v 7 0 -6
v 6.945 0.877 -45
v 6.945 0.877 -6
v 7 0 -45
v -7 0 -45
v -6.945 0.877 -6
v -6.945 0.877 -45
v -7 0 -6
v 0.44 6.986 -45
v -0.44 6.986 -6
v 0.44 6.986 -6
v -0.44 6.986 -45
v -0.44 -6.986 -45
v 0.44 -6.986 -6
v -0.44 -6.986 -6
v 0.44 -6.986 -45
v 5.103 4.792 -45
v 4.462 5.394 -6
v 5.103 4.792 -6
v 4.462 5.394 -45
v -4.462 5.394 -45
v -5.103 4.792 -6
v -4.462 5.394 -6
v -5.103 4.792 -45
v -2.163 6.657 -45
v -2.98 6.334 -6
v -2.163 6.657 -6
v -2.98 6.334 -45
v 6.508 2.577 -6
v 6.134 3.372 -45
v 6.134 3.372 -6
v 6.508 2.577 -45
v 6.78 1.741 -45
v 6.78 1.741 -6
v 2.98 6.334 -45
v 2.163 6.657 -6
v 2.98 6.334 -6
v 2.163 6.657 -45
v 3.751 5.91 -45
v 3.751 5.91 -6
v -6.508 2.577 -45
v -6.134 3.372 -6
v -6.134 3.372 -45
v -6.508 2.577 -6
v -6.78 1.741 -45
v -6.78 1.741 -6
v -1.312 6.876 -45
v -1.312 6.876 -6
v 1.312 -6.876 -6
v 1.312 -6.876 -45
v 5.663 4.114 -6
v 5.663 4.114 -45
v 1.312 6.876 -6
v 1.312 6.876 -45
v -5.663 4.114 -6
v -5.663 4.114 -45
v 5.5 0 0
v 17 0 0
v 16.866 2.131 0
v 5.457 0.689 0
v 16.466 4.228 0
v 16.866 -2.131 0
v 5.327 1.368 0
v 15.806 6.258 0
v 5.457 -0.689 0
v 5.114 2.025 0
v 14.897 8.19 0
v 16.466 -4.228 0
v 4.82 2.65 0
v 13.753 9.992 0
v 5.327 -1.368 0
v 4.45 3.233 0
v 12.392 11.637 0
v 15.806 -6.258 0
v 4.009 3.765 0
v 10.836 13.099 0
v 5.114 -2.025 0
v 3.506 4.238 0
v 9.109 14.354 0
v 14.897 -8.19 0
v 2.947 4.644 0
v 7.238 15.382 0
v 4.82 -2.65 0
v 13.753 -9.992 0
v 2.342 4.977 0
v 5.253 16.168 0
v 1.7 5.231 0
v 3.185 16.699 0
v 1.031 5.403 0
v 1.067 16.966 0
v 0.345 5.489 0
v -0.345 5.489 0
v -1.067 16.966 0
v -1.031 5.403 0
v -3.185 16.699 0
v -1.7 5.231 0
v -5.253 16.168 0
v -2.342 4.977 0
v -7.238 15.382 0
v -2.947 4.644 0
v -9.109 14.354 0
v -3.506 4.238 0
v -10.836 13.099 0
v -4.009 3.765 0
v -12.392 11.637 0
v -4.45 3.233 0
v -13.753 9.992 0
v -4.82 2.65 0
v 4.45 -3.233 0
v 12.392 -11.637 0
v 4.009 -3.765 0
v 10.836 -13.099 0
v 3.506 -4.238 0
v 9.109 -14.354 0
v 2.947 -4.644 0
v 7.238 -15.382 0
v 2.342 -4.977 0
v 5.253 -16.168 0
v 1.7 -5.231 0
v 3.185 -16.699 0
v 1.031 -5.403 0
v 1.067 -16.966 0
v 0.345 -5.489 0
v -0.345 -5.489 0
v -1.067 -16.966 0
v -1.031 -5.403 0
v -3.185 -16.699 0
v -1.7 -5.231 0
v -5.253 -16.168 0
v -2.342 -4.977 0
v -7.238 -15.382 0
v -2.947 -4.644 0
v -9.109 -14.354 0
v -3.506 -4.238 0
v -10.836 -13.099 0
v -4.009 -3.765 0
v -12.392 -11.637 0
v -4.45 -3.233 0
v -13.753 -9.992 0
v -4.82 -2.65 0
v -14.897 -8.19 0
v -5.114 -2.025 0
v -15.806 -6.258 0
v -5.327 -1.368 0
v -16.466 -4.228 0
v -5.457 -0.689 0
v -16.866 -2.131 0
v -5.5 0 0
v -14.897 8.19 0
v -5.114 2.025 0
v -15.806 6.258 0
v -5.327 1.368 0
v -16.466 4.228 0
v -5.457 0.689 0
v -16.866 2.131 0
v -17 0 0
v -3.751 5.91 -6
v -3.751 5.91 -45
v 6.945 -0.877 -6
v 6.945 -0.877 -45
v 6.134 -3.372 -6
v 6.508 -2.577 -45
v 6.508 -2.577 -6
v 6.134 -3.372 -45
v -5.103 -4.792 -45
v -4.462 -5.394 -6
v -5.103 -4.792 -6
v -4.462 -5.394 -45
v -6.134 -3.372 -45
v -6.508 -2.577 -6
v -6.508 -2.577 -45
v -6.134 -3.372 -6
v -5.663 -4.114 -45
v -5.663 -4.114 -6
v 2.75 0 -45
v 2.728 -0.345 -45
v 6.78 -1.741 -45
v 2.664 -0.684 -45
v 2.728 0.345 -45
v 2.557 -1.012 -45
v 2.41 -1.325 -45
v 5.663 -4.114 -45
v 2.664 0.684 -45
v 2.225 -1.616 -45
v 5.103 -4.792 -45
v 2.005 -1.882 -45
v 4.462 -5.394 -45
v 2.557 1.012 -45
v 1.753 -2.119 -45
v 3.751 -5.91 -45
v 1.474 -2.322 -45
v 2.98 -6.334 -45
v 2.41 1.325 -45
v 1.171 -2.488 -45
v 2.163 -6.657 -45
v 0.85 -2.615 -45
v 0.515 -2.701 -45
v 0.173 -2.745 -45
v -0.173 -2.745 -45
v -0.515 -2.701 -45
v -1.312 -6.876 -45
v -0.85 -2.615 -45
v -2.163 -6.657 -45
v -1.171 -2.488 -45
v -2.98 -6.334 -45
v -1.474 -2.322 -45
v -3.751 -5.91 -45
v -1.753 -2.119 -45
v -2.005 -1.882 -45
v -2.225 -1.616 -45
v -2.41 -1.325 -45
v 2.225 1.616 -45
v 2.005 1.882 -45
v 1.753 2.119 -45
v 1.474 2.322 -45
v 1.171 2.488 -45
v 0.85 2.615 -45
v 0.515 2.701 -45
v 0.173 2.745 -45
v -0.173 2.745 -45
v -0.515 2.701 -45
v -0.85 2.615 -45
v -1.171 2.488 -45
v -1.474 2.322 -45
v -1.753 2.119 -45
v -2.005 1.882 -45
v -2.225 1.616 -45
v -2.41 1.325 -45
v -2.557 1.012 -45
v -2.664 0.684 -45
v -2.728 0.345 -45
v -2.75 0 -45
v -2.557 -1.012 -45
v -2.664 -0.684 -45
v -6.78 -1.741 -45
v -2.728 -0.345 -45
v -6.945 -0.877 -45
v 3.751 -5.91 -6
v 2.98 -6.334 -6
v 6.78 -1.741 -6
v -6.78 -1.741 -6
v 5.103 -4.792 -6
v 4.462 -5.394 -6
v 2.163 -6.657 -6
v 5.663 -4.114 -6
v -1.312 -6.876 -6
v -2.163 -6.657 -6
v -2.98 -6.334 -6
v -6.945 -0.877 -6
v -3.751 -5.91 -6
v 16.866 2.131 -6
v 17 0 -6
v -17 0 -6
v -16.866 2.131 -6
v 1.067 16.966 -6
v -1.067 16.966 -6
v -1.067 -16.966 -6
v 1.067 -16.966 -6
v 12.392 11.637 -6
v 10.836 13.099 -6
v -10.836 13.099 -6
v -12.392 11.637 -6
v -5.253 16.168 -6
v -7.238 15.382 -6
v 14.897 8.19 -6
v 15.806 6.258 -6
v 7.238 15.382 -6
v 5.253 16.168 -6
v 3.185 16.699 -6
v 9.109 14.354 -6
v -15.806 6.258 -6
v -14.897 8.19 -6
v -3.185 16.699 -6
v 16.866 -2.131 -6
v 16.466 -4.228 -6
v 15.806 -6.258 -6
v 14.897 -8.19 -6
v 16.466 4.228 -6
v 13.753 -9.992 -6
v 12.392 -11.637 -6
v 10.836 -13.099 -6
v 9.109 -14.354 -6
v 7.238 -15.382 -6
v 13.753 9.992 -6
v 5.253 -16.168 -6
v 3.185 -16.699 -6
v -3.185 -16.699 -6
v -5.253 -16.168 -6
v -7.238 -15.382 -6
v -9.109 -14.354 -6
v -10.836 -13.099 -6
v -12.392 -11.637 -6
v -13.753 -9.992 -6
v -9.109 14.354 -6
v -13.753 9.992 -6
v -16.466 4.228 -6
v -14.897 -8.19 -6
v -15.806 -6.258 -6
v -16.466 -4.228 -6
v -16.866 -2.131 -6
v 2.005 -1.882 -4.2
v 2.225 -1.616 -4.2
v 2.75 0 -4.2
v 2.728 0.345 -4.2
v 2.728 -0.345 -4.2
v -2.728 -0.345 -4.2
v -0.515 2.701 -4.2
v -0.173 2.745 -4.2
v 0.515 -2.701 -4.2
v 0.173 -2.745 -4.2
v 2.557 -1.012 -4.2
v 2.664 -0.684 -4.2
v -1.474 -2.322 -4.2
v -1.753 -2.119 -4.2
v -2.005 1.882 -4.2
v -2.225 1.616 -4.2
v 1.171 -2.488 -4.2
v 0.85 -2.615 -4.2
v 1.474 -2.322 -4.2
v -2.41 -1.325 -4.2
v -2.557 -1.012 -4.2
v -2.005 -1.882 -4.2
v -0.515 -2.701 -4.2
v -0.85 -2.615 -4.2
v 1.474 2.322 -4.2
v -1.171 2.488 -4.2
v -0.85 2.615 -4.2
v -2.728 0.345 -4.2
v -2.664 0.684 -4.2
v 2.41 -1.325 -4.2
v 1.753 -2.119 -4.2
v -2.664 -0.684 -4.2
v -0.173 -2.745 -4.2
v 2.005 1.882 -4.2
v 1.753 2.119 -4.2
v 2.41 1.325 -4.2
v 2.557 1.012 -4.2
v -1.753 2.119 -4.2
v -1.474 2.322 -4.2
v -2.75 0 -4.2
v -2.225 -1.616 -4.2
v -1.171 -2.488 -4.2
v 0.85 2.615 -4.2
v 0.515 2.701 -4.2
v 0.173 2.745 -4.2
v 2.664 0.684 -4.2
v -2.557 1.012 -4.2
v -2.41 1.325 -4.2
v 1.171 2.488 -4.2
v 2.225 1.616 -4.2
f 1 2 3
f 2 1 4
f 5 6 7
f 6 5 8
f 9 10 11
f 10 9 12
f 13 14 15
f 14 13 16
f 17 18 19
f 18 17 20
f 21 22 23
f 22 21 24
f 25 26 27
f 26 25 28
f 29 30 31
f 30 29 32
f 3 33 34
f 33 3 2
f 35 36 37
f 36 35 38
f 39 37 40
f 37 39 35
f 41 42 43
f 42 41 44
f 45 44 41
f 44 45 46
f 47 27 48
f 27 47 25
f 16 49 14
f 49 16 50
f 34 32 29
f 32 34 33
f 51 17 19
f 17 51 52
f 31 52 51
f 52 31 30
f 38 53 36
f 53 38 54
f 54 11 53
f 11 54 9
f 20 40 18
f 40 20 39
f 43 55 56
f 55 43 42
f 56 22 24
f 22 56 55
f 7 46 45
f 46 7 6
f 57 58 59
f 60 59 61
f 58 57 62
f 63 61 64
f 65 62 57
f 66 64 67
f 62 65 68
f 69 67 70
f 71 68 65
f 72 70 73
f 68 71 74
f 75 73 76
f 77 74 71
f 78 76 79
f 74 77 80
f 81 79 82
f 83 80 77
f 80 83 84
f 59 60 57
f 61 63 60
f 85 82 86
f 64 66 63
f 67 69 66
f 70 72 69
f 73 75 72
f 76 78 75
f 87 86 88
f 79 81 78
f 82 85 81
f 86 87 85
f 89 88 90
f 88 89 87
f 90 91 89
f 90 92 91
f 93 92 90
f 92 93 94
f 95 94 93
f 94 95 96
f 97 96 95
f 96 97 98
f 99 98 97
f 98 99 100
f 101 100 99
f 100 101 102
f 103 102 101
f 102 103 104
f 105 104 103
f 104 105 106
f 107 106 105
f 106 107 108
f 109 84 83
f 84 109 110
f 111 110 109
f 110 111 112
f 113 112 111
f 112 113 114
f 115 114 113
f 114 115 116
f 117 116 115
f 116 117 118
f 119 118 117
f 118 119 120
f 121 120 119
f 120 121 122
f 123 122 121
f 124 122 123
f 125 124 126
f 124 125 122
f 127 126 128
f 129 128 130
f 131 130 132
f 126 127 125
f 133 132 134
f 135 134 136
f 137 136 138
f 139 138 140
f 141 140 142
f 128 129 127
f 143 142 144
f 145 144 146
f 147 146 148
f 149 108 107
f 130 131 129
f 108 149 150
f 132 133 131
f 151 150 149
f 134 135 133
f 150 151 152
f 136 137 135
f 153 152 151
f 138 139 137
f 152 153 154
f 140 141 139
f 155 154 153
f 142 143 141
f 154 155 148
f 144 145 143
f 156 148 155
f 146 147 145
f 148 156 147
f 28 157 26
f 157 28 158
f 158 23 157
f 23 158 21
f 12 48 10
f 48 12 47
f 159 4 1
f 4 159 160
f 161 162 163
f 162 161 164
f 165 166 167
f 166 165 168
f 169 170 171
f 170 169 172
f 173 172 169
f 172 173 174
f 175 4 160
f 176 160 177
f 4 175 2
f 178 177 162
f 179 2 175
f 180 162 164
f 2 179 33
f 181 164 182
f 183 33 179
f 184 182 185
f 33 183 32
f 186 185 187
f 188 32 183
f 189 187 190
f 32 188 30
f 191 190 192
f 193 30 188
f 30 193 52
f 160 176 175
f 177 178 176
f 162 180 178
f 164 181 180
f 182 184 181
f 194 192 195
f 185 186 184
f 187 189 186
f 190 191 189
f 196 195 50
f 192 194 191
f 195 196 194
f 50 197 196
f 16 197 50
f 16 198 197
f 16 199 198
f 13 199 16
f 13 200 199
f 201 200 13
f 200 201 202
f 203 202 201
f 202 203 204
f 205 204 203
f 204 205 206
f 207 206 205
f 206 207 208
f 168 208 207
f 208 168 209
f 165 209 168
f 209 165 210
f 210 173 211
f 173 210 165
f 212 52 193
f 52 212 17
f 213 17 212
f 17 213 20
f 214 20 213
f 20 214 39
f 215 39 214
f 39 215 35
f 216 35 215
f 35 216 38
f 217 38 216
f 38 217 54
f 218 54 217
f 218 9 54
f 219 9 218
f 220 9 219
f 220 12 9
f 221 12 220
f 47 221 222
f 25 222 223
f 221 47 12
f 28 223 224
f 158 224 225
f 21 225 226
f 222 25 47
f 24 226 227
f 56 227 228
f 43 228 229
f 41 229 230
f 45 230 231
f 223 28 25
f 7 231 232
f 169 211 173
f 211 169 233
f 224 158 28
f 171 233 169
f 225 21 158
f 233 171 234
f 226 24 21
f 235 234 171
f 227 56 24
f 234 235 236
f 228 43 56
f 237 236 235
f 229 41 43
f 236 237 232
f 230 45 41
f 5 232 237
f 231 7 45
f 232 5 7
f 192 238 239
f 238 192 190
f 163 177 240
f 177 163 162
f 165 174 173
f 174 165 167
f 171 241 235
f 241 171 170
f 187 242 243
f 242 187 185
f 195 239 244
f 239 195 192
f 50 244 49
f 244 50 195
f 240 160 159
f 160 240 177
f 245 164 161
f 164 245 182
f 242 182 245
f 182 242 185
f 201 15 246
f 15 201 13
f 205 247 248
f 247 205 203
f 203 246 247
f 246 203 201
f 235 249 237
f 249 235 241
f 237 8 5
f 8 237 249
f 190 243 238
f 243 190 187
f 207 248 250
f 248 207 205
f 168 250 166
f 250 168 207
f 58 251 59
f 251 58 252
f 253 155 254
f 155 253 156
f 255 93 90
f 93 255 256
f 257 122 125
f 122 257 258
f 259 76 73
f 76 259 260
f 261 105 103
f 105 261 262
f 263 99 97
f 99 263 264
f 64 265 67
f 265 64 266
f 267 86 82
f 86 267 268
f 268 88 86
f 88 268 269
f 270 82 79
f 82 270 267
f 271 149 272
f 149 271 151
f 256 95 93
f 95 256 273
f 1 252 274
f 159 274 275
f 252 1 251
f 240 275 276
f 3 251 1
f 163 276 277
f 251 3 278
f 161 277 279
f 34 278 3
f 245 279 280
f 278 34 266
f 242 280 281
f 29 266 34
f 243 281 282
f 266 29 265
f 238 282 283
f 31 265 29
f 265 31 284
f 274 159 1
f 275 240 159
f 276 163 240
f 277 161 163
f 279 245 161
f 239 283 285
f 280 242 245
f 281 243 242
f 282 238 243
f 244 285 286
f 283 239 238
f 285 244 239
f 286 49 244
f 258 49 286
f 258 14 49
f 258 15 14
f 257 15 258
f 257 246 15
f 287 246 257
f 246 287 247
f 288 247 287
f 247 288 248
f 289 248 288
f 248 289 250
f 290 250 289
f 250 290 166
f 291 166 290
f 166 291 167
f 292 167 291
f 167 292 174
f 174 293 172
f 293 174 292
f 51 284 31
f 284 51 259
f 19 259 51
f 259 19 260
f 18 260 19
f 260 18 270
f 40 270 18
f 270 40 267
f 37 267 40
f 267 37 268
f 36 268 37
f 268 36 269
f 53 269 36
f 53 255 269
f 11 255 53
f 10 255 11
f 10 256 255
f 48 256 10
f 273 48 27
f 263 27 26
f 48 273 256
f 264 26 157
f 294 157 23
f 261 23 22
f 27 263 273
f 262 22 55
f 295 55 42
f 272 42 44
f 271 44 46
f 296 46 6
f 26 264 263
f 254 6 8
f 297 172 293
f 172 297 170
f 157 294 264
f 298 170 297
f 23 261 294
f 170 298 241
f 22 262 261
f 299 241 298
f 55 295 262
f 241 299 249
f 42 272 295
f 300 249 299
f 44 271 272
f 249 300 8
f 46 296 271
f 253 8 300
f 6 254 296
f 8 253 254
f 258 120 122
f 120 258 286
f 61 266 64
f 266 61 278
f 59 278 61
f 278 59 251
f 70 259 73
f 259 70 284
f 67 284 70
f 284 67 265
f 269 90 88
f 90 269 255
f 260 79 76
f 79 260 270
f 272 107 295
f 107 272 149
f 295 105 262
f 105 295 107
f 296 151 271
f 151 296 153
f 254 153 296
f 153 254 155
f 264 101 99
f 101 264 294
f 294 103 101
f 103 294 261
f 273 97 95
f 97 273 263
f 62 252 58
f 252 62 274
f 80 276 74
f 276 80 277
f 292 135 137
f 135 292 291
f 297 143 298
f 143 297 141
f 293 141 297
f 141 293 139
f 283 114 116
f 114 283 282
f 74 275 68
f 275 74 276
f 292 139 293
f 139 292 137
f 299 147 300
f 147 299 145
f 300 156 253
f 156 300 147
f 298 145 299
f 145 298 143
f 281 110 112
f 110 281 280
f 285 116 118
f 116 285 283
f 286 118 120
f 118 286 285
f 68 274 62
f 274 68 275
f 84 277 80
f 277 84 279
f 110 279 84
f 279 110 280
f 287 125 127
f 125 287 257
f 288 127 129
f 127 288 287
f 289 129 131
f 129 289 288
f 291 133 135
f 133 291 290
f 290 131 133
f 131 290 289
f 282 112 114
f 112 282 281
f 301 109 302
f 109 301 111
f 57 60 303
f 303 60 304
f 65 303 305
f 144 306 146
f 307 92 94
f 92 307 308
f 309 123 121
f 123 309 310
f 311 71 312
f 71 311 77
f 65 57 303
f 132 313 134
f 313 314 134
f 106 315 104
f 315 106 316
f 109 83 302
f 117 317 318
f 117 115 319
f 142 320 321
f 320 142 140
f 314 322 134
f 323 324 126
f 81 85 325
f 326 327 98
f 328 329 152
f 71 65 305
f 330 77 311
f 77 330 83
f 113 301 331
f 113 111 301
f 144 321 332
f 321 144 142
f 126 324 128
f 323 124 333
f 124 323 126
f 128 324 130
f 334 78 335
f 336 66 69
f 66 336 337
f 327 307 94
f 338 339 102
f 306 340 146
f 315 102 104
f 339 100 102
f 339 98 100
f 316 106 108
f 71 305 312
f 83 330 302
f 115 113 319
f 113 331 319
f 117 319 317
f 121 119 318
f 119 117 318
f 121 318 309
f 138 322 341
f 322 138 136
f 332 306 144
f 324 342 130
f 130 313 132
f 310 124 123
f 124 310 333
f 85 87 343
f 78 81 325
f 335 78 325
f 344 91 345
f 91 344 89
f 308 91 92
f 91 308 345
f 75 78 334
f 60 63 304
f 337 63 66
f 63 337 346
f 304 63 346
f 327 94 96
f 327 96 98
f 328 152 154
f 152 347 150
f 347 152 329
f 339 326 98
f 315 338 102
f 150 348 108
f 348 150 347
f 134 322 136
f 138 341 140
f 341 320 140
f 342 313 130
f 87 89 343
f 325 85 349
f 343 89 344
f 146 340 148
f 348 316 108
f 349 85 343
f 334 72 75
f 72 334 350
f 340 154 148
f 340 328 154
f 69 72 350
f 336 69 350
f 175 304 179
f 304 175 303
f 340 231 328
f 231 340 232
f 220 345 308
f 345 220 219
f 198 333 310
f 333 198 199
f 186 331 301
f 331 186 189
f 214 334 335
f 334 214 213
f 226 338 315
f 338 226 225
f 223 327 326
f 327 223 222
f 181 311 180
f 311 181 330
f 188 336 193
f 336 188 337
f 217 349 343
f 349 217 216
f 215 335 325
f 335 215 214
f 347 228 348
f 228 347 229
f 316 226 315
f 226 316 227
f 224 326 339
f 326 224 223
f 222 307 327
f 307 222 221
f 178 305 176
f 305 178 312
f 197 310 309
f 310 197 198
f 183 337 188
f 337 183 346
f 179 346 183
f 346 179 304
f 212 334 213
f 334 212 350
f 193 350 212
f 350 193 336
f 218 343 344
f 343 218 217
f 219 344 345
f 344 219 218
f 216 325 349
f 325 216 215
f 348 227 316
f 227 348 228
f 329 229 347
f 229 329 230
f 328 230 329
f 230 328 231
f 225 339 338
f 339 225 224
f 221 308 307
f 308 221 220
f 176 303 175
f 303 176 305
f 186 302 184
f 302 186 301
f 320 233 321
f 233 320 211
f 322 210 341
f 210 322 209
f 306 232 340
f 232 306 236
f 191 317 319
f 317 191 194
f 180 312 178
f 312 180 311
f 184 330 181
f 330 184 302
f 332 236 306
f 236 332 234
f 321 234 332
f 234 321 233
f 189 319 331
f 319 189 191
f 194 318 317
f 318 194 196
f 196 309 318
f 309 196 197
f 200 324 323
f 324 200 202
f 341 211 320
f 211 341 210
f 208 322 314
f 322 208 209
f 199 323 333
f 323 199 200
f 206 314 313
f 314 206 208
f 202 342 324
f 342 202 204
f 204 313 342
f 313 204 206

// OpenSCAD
$fn = 50;


difference() {
	union() {
		translate(v = [0, 0, -45.0000000000]) {
			cylinder(h = 45, r = 7.0000000000);
		}
		translate(v = [0, 0, -6.0000000000]) {
			cylinder(h = 6, r = 17.0000000000);
		}
	}
	union() {
		translate(v = [0, 0, 0]) {
			rotate(a = [0, 0, 0]) {
				difference() {
					union() {
						#translate(v = [0, 0, -45.0000000000]) {
							cylinder(h = 45, r = 2.2500000000);
						}
						#translate(v = [0, 0, -4.2000000000]) {
							cylinder(h = 4.2000000000, r1 = 2.7500000000, r2 = 5.5000000000);
						}
						#translate(v = [0, 0, -45.0000000000]) {
							cylinder(h = 45, r = 2.7500000000);
						}
						#translate(v = [0, 0, -45.0000000000]) {
							cylinder(h = 45, r = 2.2500000000);
						}
					}
					union();
				}
			}
		}
	}
}
